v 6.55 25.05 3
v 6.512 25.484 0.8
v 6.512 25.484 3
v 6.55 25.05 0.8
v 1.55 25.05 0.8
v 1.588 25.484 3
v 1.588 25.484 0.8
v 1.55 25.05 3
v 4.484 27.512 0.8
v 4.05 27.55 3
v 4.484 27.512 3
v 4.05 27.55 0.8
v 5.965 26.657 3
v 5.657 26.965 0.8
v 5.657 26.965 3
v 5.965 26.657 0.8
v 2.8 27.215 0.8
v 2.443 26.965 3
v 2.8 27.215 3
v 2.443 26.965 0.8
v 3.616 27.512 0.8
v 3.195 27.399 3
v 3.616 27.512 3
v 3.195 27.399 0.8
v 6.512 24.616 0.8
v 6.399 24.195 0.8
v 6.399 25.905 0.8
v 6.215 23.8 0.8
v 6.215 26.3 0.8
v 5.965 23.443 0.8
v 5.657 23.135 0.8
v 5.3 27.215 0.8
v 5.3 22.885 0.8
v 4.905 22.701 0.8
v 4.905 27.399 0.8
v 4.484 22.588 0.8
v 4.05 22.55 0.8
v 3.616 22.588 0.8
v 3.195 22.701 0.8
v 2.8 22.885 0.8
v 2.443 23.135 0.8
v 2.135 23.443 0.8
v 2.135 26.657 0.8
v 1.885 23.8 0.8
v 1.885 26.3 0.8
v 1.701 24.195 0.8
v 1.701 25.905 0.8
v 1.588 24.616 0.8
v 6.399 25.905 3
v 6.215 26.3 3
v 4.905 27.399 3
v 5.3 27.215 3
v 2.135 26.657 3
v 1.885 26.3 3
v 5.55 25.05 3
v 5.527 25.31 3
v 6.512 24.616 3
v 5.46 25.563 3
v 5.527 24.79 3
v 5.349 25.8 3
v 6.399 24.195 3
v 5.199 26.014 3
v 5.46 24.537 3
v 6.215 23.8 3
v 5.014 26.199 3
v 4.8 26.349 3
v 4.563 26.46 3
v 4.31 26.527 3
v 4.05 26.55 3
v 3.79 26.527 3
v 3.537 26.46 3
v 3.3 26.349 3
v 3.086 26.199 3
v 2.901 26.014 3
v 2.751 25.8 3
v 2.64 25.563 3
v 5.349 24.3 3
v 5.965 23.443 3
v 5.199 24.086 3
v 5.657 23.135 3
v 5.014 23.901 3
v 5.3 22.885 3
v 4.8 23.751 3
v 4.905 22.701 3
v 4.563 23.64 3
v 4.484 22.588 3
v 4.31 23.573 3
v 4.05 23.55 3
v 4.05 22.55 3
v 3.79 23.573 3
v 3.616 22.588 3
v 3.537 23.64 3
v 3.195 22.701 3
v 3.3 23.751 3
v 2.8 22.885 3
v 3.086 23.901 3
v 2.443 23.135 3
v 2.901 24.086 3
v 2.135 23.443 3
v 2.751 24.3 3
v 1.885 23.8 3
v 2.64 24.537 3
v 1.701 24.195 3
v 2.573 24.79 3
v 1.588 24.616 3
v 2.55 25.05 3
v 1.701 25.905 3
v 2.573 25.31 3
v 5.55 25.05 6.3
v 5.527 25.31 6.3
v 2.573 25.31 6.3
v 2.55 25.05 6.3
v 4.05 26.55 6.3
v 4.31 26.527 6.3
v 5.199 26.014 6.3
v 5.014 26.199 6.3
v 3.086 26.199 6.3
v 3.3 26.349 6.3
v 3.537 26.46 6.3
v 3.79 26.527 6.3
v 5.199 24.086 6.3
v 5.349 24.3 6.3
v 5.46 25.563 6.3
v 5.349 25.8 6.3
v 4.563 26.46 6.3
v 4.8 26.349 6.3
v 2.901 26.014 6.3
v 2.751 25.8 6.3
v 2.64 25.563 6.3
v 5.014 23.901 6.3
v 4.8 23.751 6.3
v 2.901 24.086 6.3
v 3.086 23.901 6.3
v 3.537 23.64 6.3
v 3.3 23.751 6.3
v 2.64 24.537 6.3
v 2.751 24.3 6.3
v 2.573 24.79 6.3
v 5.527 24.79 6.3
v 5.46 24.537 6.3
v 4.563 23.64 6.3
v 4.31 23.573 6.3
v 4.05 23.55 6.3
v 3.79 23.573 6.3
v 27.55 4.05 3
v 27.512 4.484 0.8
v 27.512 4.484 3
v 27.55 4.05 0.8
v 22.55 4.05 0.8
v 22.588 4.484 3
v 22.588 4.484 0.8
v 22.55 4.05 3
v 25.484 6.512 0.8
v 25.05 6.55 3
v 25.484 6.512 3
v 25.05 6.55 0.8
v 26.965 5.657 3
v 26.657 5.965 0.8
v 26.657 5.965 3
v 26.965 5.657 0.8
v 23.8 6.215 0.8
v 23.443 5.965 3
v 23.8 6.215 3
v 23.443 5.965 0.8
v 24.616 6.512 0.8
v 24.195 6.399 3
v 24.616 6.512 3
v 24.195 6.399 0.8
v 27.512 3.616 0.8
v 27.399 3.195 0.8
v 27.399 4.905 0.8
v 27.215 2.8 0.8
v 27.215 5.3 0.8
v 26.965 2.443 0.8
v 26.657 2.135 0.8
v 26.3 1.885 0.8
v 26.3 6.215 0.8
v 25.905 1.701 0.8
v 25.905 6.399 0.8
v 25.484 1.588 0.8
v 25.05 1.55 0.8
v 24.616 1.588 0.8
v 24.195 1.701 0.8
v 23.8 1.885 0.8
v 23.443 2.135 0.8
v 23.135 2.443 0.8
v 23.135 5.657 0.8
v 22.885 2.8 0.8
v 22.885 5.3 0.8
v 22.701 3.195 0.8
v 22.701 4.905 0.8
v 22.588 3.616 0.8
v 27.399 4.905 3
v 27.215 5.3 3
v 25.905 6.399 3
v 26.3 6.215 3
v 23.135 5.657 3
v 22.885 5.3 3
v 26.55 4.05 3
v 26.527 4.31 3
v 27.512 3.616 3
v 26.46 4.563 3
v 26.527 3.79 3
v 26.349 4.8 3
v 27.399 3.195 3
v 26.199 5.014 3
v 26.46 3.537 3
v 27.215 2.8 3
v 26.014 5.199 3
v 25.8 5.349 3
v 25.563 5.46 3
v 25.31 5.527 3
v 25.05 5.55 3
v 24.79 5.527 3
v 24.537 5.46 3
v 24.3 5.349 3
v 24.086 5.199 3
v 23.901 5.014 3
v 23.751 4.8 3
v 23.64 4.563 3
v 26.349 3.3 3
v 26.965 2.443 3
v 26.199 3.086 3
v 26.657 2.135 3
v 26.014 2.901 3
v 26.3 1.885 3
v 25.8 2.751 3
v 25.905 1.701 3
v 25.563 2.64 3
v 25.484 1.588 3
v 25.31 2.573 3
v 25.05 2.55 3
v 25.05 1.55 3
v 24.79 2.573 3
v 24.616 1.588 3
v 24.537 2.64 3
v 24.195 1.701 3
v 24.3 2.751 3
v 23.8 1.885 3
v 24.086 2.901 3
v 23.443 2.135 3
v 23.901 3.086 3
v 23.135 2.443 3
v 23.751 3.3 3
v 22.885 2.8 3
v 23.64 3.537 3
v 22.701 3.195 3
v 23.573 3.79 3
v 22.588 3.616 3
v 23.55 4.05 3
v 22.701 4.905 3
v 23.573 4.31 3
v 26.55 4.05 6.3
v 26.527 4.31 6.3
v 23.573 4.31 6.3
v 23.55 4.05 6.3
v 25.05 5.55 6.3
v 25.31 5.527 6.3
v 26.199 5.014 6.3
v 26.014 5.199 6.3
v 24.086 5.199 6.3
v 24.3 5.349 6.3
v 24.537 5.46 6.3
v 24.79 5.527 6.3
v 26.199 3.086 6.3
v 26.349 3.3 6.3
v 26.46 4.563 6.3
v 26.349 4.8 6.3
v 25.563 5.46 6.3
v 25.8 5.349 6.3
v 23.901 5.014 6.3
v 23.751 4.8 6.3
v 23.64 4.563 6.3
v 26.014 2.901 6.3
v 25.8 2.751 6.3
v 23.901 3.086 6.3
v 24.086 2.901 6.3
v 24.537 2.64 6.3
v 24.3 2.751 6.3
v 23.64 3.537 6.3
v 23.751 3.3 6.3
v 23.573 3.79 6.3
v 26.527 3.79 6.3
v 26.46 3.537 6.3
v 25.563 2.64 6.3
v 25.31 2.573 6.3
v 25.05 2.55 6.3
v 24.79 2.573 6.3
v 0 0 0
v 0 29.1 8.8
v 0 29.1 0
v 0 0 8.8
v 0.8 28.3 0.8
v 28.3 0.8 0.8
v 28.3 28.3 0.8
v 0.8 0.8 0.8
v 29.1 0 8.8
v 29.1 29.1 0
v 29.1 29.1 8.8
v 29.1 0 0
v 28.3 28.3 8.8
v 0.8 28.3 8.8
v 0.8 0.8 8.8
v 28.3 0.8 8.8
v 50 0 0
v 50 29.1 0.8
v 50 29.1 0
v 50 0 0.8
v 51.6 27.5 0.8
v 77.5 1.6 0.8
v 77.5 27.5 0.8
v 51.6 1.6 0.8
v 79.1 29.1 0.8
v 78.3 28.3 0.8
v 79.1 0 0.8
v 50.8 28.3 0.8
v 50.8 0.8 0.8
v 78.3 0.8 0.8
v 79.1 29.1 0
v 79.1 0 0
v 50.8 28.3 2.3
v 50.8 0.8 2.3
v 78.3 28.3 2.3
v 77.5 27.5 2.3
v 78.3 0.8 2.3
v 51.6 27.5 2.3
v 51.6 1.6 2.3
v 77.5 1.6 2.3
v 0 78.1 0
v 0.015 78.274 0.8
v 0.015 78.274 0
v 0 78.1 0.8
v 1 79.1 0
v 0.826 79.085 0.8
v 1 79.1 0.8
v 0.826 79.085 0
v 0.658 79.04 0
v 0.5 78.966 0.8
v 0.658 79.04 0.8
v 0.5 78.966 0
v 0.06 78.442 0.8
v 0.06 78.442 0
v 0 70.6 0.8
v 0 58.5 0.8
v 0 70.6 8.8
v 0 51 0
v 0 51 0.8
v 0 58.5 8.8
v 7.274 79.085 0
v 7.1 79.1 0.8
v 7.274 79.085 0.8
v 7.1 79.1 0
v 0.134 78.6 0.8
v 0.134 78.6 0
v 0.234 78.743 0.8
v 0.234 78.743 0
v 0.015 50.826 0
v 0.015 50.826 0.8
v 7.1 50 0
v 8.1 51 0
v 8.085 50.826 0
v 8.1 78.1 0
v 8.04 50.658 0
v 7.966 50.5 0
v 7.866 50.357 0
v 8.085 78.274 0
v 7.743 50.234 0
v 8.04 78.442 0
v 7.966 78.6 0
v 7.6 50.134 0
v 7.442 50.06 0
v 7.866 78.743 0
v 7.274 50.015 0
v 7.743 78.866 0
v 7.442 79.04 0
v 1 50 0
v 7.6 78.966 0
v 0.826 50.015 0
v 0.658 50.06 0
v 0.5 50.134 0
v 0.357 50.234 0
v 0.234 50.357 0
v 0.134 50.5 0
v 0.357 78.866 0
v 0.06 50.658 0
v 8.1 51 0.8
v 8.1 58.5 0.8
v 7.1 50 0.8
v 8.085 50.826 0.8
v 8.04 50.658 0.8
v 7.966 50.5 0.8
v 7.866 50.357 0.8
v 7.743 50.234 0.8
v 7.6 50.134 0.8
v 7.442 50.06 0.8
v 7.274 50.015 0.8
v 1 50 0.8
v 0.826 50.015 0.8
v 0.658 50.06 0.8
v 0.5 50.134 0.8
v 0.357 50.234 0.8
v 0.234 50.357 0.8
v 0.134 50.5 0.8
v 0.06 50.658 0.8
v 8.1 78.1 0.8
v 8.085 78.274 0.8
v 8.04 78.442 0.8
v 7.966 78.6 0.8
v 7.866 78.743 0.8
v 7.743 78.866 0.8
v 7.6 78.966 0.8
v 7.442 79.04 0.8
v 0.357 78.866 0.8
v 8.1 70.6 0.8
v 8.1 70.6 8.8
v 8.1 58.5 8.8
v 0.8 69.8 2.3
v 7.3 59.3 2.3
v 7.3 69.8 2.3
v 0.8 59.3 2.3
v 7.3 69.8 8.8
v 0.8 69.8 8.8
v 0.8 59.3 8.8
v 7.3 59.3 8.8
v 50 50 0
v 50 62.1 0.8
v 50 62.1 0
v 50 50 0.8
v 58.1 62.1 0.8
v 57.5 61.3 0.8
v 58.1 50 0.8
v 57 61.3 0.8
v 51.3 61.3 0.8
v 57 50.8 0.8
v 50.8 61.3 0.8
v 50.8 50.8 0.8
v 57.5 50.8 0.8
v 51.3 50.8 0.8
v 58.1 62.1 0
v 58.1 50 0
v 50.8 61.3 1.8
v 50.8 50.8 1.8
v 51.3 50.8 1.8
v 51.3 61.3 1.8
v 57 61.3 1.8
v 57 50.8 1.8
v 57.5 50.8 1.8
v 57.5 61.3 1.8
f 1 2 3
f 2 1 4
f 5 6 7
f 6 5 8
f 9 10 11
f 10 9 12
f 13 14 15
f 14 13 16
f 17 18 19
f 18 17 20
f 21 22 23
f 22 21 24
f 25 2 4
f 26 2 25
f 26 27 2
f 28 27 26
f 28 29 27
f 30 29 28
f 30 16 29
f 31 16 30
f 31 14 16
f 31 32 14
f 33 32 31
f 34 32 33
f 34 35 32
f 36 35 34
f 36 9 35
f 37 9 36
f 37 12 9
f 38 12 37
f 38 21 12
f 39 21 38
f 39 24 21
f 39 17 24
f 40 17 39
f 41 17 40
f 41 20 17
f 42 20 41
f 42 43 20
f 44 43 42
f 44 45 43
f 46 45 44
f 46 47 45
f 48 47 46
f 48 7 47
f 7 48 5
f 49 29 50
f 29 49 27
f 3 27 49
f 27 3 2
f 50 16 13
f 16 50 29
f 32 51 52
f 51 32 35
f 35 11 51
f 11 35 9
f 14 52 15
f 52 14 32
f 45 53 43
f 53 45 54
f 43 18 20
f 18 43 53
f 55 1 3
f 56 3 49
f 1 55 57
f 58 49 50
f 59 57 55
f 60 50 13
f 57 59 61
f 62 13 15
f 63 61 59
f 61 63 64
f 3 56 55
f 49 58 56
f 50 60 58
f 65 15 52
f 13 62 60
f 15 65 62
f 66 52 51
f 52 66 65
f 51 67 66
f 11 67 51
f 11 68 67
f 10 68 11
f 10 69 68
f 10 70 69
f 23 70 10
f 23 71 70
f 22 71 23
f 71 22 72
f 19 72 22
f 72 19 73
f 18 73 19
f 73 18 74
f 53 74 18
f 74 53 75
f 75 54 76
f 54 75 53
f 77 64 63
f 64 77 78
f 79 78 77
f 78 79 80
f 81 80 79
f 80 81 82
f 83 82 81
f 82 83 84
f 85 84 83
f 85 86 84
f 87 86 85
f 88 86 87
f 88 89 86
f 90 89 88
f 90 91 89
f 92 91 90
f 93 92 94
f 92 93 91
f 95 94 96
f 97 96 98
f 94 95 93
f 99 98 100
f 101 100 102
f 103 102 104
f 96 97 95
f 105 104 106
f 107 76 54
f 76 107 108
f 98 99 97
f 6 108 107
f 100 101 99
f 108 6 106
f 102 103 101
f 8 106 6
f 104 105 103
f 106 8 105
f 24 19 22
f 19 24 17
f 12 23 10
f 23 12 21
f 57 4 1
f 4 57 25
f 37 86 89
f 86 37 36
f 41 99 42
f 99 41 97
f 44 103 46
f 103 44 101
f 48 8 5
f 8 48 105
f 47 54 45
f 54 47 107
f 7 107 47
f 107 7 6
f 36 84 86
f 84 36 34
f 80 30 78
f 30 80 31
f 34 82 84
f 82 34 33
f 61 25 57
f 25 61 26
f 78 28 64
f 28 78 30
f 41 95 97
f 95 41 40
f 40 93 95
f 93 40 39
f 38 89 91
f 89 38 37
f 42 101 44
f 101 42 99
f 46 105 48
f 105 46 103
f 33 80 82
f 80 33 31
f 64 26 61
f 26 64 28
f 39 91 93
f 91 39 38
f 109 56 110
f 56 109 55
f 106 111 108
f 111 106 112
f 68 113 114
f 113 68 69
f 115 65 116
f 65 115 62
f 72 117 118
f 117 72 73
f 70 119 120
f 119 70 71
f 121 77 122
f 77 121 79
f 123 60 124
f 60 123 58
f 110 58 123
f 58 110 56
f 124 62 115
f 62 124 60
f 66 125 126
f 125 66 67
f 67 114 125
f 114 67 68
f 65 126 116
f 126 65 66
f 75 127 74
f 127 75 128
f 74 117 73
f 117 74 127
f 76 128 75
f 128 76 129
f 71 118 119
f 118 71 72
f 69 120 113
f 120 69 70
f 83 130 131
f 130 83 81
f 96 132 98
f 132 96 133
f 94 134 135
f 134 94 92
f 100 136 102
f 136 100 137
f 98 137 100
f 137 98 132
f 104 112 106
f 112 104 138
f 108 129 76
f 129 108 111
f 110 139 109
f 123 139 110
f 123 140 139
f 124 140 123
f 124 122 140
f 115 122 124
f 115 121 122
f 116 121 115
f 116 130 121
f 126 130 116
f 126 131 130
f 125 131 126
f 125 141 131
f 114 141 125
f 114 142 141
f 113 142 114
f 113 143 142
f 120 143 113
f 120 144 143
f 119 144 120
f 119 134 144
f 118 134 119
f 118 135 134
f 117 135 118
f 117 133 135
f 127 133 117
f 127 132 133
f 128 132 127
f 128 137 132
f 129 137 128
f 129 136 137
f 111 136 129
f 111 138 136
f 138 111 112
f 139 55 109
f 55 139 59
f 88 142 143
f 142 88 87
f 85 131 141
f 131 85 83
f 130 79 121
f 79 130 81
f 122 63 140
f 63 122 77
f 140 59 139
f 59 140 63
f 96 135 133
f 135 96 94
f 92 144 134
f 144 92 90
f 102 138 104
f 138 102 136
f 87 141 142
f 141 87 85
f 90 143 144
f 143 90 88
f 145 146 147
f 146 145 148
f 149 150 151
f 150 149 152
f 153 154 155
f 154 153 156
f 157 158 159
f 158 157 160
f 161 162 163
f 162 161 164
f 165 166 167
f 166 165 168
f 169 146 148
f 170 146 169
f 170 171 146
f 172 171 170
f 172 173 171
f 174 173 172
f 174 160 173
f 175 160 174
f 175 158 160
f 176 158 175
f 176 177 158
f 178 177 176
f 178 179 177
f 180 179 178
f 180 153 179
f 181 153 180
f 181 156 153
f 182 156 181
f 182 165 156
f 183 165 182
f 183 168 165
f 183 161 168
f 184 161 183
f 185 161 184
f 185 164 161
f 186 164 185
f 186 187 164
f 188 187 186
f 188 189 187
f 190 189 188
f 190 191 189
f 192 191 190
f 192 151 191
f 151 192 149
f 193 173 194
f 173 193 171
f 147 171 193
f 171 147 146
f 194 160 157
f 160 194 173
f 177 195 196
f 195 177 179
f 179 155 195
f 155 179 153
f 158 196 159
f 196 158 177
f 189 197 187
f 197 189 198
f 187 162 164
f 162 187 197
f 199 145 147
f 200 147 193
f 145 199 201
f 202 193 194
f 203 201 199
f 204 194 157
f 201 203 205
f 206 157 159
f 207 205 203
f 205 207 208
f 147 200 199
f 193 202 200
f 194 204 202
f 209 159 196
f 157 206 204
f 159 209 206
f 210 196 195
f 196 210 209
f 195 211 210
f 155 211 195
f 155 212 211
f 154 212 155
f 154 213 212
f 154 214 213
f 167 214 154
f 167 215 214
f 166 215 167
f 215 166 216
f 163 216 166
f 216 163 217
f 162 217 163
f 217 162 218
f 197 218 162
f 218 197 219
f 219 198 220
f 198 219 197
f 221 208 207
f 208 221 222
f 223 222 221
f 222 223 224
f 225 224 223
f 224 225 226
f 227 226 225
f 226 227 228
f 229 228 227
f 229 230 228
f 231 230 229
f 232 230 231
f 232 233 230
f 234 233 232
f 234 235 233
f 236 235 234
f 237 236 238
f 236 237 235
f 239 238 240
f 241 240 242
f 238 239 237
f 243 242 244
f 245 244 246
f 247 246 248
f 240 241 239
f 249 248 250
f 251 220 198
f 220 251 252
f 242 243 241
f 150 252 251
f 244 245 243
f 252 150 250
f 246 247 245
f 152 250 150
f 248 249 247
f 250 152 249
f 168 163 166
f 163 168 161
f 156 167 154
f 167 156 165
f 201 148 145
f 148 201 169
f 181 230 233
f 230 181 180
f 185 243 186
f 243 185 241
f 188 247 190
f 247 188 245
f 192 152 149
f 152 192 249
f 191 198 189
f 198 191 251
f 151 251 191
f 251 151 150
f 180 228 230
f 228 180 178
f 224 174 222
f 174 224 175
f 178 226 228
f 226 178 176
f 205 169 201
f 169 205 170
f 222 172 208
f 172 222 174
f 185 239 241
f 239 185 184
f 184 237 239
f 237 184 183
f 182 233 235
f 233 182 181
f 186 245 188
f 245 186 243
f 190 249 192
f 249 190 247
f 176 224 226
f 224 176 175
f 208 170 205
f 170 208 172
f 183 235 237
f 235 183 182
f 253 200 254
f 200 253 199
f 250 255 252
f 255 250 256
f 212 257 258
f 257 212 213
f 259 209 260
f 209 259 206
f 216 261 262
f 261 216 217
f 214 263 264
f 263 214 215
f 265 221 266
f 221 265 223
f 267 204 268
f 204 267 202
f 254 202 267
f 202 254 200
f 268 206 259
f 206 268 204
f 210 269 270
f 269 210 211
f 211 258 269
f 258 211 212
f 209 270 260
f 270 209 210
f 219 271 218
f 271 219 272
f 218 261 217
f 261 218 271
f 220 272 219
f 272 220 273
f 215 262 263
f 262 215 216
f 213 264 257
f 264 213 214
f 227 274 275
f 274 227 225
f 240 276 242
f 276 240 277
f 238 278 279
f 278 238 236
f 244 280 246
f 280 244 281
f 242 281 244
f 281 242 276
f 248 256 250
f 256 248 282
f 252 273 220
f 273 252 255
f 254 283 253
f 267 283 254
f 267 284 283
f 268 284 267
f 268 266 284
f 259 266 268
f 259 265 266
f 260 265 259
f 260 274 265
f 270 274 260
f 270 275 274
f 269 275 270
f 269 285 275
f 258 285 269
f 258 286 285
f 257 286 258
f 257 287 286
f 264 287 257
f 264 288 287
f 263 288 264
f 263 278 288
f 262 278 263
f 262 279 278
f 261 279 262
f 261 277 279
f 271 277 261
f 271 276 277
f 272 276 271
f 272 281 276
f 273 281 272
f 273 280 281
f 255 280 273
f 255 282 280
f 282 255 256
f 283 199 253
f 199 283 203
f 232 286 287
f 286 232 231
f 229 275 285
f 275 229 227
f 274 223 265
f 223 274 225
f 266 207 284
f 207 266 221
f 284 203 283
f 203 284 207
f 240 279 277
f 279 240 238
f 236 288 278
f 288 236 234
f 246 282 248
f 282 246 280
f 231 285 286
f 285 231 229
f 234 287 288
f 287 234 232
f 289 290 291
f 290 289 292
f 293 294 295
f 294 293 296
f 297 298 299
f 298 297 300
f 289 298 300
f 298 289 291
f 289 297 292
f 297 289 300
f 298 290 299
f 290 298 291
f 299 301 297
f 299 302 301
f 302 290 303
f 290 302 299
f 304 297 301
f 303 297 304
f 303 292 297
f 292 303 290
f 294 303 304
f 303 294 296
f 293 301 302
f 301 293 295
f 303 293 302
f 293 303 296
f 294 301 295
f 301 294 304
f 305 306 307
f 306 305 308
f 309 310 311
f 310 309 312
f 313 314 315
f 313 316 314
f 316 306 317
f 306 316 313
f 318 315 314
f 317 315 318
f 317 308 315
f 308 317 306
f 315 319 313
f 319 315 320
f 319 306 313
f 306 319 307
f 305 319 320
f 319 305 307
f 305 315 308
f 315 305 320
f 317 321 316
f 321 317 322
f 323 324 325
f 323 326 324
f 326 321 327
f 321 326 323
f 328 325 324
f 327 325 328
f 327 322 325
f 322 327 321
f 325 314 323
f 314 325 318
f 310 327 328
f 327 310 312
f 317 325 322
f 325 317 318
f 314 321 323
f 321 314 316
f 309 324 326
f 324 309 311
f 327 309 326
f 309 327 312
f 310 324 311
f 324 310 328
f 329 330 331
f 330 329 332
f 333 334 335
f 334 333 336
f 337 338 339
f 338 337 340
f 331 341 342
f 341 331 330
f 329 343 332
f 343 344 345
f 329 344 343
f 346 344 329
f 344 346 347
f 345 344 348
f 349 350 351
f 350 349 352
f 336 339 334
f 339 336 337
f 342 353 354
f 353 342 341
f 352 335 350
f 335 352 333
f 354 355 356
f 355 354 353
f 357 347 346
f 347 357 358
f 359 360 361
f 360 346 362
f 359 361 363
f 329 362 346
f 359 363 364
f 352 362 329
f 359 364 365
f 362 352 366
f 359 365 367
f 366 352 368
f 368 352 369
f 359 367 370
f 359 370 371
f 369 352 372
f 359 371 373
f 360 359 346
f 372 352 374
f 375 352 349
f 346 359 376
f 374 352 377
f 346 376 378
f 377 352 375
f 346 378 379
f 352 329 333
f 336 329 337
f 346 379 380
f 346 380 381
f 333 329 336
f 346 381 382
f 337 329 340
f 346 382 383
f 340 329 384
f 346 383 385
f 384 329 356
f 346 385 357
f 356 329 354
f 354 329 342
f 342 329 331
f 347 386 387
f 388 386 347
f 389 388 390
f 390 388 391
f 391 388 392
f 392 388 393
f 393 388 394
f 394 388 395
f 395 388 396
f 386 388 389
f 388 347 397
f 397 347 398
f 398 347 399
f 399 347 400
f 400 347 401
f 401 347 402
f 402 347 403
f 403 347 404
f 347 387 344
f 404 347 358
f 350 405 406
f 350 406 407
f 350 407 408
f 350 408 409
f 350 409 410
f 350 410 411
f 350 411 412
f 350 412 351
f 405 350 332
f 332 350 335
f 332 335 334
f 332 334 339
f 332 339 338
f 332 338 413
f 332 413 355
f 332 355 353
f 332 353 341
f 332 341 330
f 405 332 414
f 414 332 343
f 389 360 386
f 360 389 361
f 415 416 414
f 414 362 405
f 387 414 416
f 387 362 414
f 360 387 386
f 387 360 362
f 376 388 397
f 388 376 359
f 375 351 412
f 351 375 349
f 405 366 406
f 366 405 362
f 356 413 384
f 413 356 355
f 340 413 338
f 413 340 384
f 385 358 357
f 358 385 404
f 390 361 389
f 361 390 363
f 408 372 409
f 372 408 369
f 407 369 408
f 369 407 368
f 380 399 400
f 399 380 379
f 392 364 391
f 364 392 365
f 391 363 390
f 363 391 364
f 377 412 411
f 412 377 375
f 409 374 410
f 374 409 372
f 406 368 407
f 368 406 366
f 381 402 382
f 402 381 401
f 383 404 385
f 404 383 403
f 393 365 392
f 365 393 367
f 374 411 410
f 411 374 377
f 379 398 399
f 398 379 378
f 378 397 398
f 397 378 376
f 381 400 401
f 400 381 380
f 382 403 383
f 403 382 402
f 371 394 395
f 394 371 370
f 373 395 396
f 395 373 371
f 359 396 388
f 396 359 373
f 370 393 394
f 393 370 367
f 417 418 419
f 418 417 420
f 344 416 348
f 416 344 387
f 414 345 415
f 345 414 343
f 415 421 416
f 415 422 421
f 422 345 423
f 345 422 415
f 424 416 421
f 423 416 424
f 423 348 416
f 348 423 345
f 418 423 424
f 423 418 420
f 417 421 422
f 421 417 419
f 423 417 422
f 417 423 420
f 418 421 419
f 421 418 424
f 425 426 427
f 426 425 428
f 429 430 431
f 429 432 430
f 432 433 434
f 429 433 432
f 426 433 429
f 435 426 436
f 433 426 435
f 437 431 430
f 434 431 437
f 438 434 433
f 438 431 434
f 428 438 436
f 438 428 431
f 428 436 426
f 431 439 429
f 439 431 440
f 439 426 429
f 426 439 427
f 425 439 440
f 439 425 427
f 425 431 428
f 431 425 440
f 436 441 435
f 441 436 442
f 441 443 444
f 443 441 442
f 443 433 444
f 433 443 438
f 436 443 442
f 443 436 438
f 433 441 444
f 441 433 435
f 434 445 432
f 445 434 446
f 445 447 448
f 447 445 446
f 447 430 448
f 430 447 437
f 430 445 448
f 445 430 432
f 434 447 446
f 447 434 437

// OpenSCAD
box_size = [27.5, 27.5, 8];
magnet_size = [6.5, 10.5, 6.5];
wall_width = 0.8;
$fn = 36;

module peg()
{
  cylinder(h = 2.2, r = 2.5);
  translate([0, 0, 2.2]) cylinder(h = 3.3, r = 1.5);
}

module box()
{
  /* Base */
  cube(box_size + [wall_width * 2, wall_width * 2, wall_width - box_size[2]]);
  /* Walls */
  translate([0, 0, wall_width]) cube([box_size[0] + 2 * wall_width, wall_width, box_size[2]]);
  translate([0, box_size[1] + wall_width, wall_width]) cube([box_size[0] + 2 * wall_width, wall_width, box_size[2]]);
  translate([0, wall_width, wall_width]) cube([wall_width, box_size[1], box_size[2]]);
  translate([box_size[0] + wall_width, wall_width, wall_width]) cube([wall_width, box_size[1], box_size[2]]); 
  /* PCB pegs */
  translate([3.25 + wall_width, 24.25 + wall_width, wall_width]) peg();
  translate([24.25 + wall_width, 3.25 + wall_width, wall_width]) peg();
}

module box_cover()
{
  /* Base */
  cube(box_size + [wall_width * 2, wall_width * 2, wall_width - box_size[2]]);
  /* Walls */
  translate([wall_width, wall_width, wall_width]) cube([box_size[0], wall_width, 1.5]);
  translate([wall_width, box_size[1], wall_width]) cube([box_size[0], wall_width, 1.5]);
  translate([wall_width, wall_width, wall_width]) cube([wall_width, box_size[1], 1.5]);
  translate([box_size[0], wall_width, wall_width]) cube([wall_width, box_size[1], 1.5]);
}

module magnet()
{
  /* Base */
  minkowski()
  {
    rad = 1;
    translate([rad, rad, 0]) cube([magnet_size[0] - (rad * 2) + (wall_width * 2), box_size[1] - (rad * 2) + (wall_width * 2), wall_width / 2]);
    cylinder(h = wall_width / 2, r = rad);
  }
  /* Platform (to raise the magnet) */
  translate([0, (box_size[1] / 2) - (magnet_size[1] / 2), wall_width]) cube([magnet_size[0] + wall_width * 2, magnet_size[1] + wall_width * 2, 1.5]);
  /* Walls */
  translate([0, (box_size[1] / 2) - (magnet_size[1] / 2), wall_width + 1.5]) cube([magnet_size[0] + 2 * wall_width, wall_width, magnet_size[2]]);
  translate([0, (box_size[1] / 2) + (magnet_size[1] / 2) + wall_width, wall_width + 1.5]) cube([magnet_size[0] + 2 * wall_width, wall_width, magnet_size[2]]);
  translate([0, (box_size[1] / 2) - (magnet_size[1] / 2), wall_width + 1.5]) cube([wall_width, magnet_size[1] + wall_width * 2, magnet_size[2]]);
  translate([magnet_size[0] + wall_width, (box_size[1] / 2) - (magnet_size[1] / 2), wall_width + 1.5]) cube([wall_width, magnet_size[1] + wall_width * 2, magnet_size[2]]);
}

module magnet_cover()
{
  /* Base */
  cube([magnet_size[0] + (wall_width * 2), magnet_size[1] + (wall_width * 2), wall_width]);
  /* Walls */
  translate([wall_width, wall_width, wall_width]) cube([0.5, magnet_size[1], 1]);
  translate([magnet_size[0] + 0.5, wall_width, wall_width]) cube([0.5, magnet_size[1], 1]);
}

box();
translate([50, 0, 0]) box_cover();

translate([0, 50, 0]) magnet();
translate([50, 50, 0]) magnet_cover();
